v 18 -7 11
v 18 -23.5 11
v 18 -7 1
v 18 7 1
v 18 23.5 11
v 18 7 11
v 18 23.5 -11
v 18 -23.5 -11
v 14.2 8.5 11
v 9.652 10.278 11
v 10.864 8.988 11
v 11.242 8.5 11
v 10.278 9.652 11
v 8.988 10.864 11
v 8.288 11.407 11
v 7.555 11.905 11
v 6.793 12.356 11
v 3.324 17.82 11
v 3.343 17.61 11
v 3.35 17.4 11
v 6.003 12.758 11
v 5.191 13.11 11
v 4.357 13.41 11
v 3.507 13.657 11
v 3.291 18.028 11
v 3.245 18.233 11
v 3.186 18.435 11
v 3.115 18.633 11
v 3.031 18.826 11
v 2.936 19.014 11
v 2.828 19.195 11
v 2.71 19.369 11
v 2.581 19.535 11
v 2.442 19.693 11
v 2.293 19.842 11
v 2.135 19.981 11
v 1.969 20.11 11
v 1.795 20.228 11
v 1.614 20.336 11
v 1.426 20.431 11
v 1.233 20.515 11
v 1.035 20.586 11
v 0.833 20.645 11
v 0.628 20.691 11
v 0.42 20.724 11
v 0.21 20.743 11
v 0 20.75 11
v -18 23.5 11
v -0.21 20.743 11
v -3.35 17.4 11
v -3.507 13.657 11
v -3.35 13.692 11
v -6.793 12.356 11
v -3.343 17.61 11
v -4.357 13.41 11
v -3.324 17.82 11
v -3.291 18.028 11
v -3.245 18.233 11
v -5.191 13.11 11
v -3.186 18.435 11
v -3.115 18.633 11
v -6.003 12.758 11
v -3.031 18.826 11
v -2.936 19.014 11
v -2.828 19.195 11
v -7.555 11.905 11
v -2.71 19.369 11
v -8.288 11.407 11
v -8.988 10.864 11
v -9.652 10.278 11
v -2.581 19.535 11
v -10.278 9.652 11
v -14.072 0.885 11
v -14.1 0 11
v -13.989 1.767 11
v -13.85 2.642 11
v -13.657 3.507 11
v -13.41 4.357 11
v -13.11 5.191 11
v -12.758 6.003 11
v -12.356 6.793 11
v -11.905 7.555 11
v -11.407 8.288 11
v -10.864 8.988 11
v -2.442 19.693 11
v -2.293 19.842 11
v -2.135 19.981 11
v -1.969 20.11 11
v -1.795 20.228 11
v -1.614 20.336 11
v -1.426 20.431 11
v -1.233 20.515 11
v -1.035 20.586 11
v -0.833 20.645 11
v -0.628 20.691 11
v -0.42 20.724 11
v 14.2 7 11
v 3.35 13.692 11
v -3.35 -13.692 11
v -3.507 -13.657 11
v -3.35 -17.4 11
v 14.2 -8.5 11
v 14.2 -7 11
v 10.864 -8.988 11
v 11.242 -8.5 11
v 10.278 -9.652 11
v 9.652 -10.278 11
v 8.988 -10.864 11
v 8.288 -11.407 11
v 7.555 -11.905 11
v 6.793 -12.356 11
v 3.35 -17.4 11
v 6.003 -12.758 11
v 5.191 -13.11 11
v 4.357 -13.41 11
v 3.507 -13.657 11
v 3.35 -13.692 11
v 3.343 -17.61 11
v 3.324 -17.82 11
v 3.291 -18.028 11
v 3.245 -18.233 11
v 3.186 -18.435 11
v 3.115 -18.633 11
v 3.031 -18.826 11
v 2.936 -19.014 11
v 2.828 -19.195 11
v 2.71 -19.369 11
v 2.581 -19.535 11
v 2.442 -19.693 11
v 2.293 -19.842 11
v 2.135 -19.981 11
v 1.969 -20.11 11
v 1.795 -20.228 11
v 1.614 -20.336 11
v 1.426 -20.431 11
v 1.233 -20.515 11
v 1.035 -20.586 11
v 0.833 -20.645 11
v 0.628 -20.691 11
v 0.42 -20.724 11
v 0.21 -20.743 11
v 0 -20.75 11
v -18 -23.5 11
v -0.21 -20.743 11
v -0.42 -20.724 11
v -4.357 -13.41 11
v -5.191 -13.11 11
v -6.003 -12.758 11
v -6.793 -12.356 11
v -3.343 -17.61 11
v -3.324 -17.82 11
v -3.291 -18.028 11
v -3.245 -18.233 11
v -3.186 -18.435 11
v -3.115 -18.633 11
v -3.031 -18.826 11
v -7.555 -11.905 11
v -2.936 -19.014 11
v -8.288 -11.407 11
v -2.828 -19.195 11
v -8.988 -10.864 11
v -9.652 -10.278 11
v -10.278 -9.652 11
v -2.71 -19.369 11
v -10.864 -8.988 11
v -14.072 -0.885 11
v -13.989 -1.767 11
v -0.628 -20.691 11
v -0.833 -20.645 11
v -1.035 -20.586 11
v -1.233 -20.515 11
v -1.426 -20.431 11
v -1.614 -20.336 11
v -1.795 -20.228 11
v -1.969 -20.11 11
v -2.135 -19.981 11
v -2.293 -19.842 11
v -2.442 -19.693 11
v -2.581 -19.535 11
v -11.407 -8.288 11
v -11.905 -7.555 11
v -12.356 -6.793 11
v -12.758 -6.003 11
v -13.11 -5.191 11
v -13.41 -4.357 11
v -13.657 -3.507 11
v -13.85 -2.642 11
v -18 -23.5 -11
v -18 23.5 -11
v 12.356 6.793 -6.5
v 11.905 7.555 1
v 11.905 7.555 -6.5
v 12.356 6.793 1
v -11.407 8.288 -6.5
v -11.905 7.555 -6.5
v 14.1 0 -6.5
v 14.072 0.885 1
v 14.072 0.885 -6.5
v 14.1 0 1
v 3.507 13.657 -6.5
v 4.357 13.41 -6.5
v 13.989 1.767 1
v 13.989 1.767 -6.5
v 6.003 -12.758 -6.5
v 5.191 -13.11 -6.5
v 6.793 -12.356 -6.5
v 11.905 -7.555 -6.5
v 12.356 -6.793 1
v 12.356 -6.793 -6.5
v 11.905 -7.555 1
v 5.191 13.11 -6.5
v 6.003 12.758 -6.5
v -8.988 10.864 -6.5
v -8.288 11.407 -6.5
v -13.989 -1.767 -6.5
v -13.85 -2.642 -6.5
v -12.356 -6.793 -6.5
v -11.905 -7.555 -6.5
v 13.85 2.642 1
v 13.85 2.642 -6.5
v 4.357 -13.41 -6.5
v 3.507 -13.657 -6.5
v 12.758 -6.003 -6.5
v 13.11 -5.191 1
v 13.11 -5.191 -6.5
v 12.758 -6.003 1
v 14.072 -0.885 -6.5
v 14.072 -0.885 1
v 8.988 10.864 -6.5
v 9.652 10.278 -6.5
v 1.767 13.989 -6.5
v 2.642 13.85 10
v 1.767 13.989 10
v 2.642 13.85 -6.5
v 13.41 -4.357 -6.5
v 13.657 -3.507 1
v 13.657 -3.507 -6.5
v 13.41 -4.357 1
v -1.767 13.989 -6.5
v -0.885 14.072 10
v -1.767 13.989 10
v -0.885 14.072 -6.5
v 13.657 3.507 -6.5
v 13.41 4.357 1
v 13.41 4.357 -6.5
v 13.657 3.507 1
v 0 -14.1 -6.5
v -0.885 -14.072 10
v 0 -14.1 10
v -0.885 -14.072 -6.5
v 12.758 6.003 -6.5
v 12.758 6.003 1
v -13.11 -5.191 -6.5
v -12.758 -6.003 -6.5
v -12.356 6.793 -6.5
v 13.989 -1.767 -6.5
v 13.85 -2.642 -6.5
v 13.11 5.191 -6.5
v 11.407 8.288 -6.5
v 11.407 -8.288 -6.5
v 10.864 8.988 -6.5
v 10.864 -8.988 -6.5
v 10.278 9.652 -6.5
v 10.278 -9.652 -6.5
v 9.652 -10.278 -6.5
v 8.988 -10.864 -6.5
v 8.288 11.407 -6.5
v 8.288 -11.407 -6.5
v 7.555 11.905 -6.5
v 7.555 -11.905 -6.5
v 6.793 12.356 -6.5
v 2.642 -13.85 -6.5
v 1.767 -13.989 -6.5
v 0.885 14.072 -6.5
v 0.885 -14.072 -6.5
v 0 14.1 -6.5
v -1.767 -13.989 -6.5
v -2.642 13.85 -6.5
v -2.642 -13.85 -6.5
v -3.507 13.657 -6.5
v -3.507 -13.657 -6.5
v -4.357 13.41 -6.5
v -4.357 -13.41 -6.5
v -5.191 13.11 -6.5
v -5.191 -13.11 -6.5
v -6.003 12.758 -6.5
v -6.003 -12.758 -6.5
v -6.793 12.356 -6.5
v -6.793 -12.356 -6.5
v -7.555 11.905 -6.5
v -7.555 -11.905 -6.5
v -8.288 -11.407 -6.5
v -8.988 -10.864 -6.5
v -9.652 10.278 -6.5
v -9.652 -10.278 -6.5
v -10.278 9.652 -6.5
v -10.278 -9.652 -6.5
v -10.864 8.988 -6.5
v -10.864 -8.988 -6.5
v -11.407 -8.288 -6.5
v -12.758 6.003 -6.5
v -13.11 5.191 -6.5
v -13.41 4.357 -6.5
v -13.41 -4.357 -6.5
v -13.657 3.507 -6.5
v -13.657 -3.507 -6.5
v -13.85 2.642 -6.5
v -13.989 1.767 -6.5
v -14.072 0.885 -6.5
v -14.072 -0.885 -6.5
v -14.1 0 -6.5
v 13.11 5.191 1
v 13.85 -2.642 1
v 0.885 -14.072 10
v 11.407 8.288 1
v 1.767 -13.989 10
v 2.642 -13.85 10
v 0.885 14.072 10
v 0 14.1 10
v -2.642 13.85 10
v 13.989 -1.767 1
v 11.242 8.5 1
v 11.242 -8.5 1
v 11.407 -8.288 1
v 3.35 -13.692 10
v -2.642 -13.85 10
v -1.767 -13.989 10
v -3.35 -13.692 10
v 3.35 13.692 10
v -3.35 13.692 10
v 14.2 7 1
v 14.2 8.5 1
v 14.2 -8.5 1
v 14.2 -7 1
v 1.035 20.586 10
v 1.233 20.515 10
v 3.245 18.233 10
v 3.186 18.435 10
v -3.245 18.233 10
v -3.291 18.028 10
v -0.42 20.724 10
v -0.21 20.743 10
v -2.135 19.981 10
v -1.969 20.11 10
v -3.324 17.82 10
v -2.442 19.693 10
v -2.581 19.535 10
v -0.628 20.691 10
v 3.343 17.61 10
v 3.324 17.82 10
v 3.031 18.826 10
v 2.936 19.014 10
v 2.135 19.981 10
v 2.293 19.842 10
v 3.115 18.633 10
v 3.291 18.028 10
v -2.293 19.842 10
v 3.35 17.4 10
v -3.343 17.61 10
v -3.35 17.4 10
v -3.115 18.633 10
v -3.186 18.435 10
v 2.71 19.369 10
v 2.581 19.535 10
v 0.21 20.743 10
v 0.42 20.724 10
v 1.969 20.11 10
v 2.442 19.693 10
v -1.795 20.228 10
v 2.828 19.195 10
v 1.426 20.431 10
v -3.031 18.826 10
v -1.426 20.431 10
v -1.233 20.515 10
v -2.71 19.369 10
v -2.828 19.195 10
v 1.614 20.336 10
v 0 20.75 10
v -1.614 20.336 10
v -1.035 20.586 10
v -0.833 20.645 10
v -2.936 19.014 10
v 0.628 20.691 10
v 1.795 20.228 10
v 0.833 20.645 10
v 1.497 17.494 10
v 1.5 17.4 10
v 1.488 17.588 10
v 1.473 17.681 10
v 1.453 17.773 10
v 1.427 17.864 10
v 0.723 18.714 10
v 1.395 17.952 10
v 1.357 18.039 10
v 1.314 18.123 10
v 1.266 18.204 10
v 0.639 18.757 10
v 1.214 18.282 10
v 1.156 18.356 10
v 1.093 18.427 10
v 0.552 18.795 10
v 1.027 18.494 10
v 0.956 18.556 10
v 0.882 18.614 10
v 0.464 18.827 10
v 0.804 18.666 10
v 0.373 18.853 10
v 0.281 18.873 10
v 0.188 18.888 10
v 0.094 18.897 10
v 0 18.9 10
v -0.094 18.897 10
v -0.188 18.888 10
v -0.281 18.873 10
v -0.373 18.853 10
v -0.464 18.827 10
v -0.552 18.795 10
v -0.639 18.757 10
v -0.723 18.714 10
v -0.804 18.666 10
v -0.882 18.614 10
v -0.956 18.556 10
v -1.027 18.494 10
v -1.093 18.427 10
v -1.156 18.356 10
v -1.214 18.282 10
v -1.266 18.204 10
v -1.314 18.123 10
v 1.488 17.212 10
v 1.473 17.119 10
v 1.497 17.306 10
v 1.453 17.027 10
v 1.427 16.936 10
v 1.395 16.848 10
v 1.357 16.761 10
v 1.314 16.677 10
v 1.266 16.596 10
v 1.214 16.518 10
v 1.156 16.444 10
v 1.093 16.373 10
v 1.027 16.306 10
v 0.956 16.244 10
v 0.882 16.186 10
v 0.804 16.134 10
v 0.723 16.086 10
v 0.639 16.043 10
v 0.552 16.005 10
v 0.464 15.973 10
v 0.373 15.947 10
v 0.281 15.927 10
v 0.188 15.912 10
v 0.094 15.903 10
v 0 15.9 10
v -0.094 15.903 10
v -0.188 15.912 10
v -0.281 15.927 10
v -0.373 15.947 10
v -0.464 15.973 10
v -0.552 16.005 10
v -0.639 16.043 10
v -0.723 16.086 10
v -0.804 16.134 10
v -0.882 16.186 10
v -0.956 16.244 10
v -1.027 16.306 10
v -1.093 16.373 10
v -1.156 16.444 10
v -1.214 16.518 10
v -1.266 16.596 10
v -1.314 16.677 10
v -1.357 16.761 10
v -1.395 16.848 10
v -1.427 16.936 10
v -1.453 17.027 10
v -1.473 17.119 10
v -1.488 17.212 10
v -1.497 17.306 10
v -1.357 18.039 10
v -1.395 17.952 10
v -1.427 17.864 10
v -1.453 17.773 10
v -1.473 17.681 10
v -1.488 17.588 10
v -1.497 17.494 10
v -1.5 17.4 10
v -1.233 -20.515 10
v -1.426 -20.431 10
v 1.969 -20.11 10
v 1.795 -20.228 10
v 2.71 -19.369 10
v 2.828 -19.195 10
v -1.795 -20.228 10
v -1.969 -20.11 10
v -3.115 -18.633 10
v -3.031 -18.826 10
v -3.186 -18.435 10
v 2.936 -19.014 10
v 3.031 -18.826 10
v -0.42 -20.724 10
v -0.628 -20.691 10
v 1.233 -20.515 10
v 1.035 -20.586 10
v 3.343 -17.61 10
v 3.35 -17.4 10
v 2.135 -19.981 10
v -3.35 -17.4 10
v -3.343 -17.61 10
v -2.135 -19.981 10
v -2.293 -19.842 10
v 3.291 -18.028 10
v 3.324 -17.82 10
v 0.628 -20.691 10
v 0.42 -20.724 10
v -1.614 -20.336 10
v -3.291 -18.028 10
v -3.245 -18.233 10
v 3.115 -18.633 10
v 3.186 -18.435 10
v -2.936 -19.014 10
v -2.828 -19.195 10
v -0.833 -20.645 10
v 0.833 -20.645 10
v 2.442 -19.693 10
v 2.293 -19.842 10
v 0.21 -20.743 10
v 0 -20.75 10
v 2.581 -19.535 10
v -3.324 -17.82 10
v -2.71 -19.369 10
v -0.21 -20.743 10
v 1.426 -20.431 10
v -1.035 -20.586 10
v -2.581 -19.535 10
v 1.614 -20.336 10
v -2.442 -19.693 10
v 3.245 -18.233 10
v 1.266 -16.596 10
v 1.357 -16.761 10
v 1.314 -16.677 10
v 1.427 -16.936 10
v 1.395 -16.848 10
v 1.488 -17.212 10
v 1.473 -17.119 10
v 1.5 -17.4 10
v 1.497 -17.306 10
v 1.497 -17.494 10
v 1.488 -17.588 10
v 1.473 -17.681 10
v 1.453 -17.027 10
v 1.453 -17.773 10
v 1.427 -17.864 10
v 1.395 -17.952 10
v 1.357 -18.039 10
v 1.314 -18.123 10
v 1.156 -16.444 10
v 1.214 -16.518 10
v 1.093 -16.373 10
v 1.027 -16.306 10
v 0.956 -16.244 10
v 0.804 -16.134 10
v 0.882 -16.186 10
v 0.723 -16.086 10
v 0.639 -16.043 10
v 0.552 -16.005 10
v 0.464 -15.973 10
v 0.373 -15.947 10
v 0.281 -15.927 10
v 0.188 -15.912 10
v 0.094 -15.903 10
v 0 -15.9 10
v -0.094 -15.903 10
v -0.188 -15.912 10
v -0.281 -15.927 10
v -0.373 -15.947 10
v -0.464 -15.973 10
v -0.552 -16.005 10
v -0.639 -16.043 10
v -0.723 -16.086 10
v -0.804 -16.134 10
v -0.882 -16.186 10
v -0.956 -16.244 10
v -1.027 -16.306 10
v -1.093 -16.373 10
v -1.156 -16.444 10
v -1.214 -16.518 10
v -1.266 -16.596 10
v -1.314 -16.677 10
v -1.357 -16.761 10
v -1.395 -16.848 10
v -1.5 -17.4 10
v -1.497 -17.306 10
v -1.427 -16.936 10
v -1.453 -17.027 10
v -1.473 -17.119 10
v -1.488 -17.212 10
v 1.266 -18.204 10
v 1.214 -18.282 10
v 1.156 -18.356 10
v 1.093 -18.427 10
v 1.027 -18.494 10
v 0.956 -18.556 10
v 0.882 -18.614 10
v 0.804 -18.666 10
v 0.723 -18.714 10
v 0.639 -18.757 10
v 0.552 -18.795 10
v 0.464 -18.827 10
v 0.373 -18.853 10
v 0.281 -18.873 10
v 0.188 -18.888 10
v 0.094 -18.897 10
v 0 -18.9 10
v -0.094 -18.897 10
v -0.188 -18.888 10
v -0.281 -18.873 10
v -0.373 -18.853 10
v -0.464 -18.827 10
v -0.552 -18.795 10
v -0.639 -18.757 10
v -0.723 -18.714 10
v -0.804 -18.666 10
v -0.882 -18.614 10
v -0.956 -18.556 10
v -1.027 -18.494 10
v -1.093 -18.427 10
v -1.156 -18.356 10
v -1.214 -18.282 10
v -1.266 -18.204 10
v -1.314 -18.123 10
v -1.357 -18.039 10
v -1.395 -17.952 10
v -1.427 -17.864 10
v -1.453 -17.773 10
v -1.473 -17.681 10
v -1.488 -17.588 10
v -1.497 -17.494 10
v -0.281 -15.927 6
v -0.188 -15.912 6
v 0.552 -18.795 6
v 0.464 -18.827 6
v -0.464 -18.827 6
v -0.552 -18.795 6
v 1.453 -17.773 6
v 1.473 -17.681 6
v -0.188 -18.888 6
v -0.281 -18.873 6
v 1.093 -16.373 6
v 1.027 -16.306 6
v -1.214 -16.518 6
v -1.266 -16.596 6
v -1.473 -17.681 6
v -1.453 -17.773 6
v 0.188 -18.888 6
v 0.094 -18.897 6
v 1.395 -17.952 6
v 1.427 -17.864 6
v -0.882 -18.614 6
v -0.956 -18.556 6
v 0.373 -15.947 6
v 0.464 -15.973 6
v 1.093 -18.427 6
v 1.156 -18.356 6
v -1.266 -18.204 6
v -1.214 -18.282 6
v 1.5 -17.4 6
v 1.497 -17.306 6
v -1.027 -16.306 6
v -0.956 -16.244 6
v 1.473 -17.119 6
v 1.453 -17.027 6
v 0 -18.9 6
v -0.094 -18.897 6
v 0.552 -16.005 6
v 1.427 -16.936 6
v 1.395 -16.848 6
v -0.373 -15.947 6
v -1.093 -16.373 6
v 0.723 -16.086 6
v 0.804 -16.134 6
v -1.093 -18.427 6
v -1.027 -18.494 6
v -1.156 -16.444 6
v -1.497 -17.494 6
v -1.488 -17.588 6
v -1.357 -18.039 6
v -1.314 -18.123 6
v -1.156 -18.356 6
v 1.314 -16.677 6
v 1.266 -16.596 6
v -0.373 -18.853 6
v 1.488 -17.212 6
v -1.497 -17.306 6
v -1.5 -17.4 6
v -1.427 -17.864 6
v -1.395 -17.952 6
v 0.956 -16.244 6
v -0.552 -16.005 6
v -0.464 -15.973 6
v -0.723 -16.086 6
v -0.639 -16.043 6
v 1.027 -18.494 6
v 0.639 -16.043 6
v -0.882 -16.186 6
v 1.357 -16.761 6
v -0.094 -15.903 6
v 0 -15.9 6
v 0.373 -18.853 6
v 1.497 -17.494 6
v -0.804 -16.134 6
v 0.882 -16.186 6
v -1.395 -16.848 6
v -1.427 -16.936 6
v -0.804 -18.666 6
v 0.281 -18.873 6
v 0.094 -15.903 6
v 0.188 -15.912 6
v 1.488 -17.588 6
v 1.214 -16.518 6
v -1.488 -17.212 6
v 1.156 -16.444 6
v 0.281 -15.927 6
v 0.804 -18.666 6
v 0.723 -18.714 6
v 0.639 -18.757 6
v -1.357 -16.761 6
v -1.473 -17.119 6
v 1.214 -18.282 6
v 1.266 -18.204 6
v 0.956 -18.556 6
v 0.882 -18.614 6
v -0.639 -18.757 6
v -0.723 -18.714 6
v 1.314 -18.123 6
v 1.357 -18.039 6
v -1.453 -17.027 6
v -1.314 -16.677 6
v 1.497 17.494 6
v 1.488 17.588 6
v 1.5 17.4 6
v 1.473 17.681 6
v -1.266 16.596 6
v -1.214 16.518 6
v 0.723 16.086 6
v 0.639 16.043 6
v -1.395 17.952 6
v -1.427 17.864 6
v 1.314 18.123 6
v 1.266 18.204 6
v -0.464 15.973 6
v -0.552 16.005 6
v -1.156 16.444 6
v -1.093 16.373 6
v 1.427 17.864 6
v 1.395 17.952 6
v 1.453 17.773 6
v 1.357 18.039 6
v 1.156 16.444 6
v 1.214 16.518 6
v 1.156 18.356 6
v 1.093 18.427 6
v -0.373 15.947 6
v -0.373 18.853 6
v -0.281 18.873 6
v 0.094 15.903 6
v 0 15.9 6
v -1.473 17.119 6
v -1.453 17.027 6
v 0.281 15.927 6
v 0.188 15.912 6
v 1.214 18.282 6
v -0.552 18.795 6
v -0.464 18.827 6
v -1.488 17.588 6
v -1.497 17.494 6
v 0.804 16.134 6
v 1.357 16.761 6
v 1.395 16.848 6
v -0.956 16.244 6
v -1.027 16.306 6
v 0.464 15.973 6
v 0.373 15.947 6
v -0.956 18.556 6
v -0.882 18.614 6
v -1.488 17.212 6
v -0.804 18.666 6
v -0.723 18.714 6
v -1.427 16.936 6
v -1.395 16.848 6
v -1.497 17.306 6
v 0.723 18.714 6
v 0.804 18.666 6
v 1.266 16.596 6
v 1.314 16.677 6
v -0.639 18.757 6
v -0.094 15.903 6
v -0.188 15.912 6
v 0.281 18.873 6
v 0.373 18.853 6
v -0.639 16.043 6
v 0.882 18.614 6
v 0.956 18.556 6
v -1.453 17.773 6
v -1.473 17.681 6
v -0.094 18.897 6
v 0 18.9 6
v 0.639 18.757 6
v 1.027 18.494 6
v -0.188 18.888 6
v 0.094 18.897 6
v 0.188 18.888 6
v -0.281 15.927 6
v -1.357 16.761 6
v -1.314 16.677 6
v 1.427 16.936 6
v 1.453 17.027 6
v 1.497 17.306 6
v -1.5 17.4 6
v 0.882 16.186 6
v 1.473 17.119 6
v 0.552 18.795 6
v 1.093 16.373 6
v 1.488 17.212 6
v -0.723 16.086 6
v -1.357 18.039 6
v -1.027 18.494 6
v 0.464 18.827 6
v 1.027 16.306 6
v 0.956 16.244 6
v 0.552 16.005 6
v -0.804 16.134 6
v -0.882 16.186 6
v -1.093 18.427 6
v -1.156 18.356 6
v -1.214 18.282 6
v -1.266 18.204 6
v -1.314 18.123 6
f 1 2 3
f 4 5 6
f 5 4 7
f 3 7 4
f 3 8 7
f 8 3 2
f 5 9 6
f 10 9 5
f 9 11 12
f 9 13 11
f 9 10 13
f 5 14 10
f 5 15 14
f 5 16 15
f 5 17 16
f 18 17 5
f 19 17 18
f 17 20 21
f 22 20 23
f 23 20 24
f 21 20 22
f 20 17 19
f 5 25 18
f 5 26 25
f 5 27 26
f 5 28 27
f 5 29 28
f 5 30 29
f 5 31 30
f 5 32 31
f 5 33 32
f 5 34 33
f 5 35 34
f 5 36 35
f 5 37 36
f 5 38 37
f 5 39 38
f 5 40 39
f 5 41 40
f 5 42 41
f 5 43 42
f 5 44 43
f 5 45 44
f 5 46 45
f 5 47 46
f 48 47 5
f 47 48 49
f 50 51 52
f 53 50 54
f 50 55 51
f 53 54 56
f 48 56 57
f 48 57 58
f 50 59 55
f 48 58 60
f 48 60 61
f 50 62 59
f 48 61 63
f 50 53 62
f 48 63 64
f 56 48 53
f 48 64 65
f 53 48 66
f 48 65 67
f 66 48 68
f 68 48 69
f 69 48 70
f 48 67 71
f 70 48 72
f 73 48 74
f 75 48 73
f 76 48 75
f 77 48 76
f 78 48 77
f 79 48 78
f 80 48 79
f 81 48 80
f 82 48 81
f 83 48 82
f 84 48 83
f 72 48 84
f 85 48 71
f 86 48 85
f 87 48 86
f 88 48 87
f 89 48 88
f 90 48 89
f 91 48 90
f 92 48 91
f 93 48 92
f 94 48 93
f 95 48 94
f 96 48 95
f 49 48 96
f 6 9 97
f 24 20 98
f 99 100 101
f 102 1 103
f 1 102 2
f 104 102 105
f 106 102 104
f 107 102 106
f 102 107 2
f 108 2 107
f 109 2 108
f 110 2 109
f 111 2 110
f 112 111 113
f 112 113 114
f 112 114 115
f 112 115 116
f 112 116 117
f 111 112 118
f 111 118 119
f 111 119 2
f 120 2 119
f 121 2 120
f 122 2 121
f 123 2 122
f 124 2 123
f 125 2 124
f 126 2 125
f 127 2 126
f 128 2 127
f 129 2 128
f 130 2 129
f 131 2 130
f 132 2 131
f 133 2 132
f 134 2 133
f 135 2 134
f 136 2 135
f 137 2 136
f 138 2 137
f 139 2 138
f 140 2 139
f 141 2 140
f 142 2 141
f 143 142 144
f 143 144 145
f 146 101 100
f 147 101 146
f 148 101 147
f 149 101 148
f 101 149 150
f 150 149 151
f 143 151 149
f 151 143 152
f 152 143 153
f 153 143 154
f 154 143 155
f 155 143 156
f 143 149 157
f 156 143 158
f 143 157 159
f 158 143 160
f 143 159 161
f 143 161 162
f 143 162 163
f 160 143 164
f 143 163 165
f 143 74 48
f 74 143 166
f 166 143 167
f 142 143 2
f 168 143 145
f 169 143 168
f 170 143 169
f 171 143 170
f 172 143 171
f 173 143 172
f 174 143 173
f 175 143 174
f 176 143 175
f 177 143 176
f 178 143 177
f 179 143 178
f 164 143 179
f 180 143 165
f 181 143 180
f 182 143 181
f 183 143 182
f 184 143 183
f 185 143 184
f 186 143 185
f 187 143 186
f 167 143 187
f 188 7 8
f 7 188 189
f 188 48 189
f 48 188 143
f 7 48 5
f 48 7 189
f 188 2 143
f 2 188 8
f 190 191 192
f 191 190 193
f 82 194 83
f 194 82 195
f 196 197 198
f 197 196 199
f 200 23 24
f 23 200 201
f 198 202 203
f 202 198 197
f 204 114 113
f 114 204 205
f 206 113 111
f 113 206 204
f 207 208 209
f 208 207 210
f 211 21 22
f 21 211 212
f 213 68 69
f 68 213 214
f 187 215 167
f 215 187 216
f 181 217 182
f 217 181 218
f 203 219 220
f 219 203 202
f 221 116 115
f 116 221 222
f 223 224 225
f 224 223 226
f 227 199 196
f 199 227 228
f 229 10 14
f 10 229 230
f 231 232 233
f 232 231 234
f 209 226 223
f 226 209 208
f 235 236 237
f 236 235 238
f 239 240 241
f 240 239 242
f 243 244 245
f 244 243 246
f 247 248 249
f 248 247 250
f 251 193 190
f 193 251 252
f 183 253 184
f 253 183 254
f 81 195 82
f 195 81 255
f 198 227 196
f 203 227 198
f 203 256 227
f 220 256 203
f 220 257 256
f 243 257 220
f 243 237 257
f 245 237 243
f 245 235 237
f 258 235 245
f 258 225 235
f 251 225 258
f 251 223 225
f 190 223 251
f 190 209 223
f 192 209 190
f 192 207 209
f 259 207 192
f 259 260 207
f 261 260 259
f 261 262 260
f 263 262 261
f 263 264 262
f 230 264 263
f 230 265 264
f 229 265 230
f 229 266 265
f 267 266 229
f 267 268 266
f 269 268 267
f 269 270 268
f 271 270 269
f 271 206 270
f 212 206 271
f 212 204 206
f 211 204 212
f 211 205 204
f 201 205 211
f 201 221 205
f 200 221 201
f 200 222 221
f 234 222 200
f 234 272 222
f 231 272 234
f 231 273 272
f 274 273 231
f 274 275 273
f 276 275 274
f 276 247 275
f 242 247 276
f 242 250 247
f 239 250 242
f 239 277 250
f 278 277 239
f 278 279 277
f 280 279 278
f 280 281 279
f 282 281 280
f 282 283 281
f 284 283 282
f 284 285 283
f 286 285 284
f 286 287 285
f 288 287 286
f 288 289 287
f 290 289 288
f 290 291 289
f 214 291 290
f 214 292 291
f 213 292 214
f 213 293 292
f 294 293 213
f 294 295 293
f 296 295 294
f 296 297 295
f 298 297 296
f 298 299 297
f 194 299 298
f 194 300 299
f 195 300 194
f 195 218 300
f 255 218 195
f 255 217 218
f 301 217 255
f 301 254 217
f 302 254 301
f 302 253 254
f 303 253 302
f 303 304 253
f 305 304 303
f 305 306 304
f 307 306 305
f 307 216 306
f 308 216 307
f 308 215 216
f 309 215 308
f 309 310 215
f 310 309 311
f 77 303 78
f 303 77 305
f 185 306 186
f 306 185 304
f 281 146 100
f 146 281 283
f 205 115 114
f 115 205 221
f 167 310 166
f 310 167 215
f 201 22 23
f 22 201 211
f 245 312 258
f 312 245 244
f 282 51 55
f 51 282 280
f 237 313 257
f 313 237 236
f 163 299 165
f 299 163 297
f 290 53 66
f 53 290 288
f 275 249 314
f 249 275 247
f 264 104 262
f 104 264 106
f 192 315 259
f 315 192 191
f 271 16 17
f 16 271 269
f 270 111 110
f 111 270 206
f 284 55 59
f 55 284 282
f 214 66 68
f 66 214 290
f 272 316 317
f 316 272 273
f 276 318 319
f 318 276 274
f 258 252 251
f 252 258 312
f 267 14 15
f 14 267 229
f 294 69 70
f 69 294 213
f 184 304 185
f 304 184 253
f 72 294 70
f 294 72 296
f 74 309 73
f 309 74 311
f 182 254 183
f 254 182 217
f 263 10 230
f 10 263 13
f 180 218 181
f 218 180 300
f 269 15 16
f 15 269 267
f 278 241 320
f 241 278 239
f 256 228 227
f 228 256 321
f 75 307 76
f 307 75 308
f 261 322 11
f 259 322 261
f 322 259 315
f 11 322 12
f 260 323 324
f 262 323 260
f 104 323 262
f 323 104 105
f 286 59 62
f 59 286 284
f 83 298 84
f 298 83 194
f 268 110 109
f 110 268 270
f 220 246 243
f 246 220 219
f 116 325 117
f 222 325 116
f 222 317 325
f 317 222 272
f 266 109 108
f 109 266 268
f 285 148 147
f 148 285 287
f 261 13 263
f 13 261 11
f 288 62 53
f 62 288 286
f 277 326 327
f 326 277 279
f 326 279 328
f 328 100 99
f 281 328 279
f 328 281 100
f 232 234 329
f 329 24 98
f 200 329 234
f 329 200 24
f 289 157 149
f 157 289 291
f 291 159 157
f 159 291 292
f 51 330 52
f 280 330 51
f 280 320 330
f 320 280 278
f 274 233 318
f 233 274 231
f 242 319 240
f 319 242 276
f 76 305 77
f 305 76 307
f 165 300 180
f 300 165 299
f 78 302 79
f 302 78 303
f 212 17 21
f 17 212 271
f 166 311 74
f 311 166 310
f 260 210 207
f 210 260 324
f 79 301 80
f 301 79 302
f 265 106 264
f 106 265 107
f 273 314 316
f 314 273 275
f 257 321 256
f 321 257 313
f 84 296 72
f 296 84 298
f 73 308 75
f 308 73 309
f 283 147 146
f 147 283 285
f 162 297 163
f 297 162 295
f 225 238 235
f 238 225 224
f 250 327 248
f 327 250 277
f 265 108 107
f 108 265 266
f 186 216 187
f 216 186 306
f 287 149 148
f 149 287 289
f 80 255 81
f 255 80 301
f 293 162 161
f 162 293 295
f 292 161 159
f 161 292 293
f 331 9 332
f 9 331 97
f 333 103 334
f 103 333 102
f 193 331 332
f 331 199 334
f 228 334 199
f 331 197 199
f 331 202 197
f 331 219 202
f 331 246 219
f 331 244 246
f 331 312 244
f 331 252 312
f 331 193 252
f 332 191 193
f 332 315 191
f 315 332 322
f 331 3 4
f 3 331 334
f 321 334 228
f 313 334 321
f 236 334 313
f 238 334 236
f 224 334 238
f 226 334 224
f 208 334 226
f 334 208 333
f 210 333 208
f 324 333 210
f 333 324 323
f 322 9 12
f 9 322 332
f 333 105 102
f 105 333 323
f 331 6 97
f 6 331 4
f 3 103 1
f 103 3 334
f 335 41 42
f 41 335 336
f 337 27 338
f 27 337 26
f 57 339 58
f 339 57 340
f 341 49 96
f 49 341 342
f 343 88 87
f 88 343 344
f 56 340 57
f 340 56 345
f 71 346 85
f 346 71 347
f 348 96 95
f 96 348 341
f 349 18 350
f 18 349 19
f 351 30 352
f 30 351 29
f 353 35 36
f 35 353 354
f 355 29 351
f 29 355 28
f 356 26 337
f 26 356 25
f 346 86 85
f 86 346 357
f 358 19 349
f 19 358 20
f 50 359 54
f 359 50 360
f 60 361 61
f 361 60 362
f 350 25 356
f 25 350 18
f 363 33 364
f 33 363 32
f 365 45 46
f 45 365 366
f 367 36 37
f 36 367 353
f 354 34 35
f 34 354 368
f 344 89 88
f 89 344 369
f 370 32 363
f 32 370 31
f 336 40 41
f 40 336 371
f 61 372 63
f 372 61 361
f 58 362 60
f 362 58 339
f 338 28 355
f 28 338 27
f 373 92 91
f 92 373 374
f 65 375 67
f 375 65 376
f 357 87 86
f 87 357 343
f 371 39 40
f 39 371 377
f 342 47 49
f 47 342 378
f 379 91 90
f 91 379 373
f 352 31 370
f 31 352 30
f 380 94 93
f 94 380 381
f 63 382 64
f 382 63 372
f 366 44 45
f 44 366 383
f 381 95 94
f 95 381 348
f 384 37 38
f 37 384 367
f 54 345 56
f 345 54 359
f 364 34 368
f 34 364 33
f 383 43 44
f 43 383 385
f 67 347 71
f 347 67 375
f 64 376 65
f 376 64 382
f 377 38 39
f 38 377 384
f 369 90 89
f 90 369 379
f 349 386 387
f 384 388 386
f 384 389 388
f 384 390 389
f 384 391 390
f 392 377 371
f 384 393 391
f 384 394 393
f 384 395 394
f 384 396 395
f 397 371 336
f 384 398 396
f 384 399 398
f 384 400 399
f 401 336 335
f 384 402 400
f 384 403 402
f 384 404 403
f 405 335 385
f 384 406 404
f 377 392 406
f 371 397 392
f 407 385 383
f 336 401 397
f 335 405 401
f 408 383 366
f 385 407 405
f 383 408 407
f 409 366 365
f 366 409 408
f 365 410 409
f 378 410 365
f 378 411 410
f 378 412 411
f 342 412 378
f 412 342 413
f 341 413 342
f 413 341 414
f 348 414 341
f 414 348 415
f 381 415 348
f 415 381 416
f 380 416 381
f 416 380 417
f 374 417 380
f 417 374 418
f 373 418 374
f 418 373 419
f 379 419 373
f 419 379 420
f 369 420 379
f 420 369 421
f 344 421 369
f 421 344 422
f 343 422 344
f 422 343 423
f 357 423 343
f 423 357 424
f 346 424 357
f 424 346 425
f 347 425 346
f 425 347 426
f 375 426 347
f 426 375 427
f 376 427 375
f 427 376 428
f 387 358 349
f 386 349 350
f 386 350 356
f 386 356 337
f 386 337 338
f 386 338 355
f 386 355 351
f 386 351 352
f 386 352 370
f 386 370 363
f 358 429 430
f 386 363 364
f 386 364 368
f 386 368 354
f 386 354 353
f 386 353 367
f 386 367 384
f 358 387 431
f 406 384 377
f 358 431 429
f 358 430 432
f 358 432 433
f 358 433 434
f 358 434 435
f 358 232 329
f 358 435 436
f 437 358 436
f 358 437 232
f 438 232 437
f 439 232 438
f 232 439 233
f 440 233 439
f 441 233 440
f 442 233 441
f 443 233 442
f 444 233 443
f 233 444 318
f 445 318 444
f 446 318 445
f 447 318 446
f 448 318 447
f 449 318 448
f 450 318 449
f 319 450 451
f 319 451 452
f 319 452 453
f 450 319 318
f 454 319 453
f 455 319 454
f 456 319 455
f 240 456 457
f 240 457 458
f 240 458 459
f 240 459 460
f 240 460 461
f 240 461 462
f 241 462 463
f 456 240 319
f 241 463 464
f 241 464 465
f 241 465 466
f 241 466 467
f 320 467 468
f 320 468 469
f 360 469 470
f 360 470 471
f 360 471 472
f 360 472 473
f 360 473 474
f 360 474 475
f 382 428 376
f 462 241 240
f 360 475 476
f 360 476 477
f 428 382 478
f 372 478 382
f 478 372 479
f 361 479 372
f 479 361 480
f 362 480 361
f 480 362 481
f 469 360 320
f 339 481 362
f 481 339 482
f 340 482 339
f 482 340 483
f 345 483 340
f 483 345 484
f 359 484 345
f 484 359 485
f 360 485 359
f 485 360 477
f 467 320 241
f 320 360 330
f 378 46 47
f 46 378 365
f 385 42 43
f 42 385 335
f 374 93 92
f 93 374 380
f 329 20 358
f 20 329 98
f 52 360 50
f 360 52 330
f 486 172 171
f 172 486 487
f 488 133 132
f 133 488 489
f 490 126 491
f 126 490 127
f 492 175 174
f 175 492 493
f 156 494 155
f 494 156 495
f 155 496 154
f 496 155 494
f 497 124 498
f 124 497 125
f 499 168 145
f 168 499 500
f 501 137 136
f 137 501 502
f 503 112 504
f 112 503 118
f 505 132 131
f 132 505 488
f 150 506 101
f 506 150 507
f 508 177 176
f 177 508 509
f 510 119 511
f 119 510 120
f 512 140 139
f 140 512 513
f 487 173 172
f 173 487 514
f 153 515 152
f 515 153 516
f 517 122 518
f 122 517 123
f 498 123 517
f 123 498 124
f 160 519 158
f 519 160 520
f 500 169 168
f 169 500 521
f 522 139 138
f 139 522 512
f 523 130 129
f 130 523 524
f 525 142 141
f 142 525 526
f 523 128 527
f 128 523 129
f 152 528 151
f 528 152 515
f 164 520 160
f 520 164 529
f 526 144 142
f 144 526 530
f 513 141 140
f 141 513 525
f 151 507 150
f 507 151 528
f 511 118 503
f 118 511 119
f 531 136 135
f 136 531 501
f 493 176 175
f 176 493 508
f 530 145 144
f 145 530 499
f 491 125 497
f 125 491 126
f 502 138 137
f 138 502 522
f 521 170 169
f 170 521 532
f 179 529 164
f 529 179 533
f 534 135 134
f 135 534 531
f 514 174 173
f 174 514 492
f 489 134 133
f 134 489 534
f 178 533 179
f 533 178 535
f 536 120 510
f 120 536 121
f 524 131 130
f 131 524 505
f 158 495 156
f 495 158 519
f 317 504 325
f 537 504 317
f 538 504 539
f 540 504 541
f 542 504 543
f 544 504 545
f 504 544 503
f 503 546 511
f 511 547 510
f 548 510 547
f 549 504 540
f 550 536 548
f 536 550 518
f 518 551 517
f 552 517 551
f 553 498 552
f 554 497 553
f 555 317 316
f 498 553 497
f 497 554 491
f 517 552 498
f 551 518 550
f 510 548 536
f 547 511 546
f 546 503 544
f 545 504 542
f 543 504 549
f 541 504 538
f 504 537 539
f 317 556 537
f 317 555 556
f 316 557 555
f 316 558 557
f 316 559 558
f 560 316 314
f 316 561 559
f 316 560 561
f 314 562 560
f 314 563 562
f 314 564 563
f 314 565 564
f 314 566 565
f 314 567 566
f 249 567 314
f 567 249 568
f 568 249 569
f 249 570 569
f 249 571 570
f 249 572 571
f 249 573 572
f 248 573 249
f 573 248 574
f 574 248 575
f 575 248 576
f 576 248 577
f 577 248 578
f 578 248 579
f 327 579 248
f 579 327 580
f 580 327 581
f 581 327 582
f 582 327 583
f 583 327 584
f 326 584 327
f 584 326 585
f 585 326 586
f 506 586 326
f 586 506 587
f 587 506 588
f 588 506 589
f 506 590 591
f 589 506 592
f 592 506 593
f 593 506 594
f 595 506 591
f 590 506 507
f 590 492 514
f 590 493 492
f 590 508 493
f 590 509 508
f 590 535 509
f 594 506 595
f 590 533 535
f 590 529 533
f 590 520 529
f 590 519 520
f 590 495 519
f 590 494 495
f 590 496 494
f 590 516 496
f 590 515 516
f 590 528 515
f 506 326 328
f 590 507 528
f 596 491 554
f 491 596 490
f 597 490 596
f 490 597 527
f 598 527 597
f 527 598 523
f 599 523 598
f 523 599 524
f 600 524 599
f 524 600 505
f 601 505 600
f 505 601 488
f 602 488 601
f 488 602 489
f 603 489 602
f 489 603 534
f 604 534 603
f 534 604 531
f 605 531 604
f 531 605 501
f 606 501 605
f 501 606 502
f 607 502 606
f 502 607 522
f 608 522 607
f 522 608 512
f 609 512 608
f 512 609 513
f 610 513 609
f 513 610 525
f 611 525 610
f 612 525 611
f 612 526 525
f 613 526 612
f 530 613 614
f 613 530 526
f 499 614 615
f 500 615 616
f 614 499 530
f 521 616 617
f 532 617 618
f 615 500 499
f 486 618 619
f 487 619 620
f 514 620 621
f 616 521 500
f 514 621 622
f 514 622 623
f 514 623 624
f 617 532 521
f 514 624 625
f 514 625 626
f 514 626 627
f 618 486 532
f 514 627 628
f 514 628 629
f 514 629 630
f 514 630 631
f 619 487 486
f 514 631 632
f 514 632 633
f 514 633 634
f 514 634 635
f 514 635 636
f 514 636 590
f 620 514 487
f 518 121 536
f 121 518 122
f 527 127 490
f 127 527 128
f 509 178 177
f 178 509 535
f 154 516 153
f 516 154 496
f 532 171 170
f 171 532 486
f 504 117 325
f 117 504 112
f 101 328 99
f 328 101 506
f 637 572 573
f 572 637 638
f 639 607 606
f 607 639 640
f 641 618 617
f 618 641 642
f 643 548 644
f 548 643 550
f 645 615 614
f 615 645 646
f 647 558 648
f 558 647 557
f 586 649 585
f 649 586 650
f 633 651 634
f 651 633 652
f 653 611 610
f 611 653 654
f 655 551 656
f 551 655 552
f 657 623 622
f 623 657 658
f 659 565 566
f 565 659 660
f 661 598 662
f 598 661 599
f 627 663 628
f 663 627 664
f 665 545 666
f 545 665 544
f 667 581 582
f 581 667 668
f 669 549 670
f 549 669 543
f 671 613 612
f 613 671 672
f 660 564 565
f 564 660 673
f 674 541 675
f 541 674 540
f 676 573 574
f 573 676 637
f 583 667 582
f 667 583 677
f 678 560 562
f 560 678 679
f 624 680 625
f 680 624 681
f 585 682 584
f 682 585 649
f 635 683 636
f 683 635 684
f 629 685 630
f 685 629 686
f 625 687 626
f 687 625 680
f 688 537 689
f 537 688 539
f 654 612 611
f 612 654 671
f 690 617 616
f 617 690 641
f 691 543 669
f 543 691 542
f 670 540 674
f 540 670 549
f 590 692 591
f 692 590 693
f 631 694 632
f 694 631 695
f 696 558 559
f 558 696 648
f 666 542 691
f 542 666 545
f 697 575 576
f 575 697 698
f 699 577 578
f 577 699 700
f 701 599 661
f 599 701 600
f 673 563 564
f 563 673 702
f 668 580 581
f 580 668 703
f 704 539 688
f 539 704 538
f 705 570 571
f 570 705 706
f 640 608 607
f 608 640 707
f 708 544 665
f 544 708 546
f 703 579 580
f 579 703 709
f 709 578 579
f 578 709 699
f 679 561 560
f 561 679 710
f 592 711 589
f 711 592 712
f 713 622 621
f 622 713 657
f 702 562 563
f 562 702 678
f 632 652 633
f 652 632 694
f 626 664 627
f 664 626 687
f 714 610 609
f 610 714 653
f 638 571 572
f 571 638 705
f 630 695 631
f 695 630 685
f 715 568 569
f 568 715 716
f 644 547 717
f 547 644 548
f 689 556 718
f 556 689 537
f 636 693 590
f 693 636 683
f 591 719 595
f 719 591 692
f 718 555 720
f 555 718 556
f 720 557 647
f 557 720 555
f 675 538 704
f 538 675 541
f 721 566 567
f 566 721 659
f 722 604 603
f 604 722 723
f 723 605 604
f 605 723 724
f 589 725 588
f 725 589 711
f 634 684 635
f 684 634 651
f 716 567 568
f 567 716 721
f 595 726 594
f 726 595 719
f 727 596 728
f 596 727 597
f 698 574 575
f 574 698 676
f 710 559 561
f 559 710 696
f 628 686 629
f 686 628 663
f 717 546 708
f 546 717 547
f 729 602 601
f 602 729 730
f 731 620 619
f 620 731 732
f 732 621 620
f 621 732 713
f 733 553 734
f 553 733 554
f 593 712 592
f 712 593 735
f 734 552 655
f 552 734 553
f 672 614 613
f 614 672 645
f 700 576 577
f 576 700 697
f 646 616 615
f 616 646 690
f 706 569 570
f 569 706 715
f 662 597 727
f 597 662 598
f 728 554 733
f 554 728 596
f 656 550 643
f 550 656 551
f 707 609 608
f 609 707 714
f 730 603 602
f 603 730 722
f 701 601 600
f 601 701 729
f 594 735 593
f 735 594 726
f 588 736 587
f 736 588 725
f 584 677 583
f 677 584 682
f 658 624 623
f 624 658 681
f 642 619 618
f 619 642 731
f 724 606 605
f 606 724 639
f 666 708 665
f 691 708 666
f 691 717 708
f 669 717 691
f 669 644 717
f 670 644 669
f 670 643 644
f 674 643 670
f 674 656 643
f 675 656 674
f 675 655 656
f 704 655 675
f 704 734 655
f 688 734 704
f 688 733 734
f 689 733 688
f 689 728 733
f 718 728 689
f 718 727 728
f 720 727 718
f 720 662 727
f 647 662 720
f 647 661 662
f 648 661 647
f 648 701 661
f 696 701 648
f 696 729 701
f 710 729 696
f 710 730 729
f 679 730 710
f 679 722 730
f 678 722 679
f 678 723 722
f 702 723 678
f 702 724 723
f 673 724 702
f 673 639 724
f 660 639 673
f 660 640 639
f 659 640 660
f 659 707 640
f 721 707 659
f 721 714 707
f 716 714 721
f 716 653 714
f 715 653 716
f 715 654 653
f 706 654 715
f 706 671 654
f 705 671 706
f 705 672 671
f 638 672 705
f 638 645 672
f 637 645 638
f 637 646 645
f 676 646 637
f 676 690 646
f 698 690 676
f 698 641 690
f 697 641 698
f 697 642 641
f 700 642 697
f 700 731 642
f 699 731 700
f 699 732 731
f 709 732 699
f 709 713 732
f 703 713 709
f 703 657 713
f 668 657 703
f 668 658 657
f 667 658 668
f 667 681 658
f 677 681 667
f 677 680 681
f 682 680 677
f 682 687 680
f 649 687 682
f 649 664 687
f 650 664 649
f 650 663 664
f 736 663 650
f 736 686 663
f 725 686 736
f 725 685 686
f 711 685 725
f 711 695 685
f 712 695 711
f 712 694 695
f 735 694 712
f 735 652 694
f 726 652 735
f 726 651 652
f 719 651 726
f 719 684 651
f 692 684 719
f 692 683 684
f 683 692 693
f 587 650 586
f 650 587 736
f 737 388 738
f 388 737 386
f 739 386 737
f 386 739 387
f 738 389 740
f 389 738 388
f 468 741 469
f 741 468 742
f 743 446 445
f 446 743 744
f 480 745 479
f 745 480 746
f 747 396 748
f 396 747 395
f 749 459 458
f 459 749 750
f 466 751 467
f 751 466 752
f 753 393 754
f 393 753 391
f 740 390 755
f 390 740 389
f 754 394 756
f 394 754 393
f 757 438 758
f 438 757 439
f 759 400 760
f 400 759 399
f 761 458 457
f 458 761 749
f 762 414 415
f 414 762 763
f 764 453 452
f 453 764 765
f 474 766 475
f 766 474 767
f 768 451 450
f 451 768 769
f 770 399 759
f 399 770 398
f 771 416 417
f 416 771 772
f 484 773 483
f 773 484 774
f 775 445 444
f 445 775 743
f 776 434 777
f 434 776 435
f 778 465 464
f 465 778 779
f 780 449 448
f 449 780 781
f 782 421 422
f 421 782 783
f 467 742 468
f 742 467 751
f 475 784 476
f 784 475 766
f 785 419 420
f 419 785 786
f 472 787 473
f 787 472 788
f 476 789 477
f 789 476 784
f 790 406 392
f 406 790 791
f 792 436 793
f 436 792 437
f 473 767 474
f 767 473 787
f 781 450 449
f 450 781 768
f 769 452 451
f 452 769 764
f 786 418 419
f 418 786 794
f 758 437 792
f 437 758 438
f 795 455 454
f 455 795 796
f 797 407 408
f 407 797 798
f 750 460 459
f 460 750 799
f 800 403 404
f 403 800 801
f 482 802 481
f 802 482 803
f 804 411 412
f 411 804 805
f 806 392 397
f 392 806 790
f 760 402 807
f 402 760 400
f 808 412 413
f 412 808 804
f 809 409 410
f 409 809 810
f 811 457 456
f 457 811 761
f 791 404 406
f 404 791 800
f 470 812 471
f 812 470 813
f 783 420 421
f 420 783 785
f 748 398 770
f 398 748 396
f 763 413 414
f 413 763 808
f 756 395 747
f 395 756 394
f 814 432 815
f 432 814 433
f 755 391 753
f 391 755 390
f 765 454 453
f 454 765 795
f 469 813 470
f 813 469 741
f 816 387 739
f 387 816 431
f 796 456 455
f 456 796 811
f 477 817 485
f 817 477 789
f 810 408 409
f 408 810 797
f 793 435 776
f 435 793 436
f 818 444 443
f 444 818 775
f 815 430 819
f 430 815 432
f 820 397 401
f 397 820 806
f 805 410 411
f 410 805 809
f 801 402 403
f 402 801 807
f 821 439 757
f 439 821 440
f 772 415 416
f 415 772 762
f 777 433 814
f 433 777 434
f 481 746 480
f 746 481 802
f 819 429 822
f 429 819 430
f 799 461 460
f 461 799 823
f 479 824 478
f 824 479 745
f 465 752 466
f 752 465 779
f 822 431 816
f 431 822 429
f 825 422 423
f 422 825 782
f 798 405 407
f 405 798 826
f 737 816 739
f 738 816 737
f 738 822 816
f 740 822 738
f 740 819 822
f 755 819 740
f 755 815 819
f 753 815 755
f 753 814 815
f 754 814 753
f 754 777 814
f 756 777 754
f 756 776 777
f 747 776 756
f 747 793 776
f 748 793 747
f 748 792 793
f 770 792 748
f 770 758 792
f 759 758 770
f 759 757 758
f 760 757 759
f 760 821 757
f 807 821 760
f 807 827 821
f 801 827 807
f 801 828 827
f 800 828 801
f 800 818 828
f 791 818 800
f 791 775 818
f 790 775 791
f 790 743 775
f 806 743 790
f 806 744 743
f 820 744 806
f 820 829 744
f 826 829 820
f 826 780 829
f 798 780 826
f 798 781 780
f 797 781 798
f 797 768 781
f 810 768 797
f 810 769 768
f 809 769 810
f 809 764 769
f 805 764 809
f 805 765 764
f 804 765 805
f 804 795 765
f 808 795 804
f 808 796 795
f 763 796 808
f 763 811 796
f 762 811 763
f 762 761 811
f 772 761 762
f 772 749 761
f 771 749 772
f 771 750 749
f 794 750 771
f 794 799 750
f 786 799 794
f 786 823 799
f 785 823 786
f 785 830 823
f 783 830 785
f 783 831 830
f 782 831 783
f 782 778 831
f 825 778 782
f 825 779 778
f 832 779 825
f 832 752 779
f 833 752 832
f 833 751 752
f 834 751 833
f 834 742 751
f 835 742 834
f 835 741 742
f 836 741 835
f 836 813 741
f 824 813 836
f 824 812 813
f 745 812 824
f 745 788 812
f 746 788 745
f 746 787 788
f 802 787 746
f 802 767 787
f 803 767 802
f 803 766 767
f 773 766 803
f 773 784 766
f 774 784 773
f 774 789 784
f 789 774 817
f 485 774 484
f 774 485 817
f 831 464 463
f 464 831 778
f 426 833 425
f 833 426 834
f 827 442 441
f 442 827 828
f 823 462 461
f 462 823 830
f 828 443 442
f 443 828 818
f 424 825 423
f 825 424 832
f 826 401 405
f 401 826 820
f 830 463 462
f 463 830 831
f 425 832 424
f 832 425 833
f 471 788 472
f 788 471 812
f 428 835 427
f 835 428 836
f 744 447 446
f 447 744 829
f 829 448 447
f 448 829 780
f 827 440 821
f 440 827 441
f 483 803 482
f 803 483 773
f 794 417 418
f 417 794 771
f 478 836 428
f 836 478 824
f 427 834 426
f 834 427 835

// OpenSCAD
difference() {
  cube([36,47, 22], center=true);
  // translate([0,0,0]) cylinder(r=14.1, h=19, $fn=100, center=true);
  color("blue") translate([0,0,3]) cylinder(r=14.1, h=19, $fn=100, center=true);
  color("red") translate([5.7,0,6]) cube([17,17,10], center=true);
  color("black") translate([10,0,6]) cube([17,14,10], center=true);
  
  color("purple") translate([0,17.4,10]) cylinder(r=3.35, h=1, $fn=100);
  color("orange") translate([0,14.05,11]) cube([6.7,6.7,2], center=true);
  
  color("purple") translate([0,-17.4,10]) cylinder(r=3.35, h=1, $fn=100);
  color("orange") translate([0,-14.05,11]) cube([6.7,6.7,2], center=true);

  color("green") translate([0,-17.4,6]) cylinder(r=1.5, h=5, $fn=100);
  color("green") translate([0,17.4,6]) cylinder(r=1.5, h=5, $fn=100);

}

// color("purple") translate([0,17.4,10]) cylinder(r=3.35, h=1, $fn=100);
// color("orange") translate([0,14.05,10]) cube([6.7,6.7,2], center=true);
